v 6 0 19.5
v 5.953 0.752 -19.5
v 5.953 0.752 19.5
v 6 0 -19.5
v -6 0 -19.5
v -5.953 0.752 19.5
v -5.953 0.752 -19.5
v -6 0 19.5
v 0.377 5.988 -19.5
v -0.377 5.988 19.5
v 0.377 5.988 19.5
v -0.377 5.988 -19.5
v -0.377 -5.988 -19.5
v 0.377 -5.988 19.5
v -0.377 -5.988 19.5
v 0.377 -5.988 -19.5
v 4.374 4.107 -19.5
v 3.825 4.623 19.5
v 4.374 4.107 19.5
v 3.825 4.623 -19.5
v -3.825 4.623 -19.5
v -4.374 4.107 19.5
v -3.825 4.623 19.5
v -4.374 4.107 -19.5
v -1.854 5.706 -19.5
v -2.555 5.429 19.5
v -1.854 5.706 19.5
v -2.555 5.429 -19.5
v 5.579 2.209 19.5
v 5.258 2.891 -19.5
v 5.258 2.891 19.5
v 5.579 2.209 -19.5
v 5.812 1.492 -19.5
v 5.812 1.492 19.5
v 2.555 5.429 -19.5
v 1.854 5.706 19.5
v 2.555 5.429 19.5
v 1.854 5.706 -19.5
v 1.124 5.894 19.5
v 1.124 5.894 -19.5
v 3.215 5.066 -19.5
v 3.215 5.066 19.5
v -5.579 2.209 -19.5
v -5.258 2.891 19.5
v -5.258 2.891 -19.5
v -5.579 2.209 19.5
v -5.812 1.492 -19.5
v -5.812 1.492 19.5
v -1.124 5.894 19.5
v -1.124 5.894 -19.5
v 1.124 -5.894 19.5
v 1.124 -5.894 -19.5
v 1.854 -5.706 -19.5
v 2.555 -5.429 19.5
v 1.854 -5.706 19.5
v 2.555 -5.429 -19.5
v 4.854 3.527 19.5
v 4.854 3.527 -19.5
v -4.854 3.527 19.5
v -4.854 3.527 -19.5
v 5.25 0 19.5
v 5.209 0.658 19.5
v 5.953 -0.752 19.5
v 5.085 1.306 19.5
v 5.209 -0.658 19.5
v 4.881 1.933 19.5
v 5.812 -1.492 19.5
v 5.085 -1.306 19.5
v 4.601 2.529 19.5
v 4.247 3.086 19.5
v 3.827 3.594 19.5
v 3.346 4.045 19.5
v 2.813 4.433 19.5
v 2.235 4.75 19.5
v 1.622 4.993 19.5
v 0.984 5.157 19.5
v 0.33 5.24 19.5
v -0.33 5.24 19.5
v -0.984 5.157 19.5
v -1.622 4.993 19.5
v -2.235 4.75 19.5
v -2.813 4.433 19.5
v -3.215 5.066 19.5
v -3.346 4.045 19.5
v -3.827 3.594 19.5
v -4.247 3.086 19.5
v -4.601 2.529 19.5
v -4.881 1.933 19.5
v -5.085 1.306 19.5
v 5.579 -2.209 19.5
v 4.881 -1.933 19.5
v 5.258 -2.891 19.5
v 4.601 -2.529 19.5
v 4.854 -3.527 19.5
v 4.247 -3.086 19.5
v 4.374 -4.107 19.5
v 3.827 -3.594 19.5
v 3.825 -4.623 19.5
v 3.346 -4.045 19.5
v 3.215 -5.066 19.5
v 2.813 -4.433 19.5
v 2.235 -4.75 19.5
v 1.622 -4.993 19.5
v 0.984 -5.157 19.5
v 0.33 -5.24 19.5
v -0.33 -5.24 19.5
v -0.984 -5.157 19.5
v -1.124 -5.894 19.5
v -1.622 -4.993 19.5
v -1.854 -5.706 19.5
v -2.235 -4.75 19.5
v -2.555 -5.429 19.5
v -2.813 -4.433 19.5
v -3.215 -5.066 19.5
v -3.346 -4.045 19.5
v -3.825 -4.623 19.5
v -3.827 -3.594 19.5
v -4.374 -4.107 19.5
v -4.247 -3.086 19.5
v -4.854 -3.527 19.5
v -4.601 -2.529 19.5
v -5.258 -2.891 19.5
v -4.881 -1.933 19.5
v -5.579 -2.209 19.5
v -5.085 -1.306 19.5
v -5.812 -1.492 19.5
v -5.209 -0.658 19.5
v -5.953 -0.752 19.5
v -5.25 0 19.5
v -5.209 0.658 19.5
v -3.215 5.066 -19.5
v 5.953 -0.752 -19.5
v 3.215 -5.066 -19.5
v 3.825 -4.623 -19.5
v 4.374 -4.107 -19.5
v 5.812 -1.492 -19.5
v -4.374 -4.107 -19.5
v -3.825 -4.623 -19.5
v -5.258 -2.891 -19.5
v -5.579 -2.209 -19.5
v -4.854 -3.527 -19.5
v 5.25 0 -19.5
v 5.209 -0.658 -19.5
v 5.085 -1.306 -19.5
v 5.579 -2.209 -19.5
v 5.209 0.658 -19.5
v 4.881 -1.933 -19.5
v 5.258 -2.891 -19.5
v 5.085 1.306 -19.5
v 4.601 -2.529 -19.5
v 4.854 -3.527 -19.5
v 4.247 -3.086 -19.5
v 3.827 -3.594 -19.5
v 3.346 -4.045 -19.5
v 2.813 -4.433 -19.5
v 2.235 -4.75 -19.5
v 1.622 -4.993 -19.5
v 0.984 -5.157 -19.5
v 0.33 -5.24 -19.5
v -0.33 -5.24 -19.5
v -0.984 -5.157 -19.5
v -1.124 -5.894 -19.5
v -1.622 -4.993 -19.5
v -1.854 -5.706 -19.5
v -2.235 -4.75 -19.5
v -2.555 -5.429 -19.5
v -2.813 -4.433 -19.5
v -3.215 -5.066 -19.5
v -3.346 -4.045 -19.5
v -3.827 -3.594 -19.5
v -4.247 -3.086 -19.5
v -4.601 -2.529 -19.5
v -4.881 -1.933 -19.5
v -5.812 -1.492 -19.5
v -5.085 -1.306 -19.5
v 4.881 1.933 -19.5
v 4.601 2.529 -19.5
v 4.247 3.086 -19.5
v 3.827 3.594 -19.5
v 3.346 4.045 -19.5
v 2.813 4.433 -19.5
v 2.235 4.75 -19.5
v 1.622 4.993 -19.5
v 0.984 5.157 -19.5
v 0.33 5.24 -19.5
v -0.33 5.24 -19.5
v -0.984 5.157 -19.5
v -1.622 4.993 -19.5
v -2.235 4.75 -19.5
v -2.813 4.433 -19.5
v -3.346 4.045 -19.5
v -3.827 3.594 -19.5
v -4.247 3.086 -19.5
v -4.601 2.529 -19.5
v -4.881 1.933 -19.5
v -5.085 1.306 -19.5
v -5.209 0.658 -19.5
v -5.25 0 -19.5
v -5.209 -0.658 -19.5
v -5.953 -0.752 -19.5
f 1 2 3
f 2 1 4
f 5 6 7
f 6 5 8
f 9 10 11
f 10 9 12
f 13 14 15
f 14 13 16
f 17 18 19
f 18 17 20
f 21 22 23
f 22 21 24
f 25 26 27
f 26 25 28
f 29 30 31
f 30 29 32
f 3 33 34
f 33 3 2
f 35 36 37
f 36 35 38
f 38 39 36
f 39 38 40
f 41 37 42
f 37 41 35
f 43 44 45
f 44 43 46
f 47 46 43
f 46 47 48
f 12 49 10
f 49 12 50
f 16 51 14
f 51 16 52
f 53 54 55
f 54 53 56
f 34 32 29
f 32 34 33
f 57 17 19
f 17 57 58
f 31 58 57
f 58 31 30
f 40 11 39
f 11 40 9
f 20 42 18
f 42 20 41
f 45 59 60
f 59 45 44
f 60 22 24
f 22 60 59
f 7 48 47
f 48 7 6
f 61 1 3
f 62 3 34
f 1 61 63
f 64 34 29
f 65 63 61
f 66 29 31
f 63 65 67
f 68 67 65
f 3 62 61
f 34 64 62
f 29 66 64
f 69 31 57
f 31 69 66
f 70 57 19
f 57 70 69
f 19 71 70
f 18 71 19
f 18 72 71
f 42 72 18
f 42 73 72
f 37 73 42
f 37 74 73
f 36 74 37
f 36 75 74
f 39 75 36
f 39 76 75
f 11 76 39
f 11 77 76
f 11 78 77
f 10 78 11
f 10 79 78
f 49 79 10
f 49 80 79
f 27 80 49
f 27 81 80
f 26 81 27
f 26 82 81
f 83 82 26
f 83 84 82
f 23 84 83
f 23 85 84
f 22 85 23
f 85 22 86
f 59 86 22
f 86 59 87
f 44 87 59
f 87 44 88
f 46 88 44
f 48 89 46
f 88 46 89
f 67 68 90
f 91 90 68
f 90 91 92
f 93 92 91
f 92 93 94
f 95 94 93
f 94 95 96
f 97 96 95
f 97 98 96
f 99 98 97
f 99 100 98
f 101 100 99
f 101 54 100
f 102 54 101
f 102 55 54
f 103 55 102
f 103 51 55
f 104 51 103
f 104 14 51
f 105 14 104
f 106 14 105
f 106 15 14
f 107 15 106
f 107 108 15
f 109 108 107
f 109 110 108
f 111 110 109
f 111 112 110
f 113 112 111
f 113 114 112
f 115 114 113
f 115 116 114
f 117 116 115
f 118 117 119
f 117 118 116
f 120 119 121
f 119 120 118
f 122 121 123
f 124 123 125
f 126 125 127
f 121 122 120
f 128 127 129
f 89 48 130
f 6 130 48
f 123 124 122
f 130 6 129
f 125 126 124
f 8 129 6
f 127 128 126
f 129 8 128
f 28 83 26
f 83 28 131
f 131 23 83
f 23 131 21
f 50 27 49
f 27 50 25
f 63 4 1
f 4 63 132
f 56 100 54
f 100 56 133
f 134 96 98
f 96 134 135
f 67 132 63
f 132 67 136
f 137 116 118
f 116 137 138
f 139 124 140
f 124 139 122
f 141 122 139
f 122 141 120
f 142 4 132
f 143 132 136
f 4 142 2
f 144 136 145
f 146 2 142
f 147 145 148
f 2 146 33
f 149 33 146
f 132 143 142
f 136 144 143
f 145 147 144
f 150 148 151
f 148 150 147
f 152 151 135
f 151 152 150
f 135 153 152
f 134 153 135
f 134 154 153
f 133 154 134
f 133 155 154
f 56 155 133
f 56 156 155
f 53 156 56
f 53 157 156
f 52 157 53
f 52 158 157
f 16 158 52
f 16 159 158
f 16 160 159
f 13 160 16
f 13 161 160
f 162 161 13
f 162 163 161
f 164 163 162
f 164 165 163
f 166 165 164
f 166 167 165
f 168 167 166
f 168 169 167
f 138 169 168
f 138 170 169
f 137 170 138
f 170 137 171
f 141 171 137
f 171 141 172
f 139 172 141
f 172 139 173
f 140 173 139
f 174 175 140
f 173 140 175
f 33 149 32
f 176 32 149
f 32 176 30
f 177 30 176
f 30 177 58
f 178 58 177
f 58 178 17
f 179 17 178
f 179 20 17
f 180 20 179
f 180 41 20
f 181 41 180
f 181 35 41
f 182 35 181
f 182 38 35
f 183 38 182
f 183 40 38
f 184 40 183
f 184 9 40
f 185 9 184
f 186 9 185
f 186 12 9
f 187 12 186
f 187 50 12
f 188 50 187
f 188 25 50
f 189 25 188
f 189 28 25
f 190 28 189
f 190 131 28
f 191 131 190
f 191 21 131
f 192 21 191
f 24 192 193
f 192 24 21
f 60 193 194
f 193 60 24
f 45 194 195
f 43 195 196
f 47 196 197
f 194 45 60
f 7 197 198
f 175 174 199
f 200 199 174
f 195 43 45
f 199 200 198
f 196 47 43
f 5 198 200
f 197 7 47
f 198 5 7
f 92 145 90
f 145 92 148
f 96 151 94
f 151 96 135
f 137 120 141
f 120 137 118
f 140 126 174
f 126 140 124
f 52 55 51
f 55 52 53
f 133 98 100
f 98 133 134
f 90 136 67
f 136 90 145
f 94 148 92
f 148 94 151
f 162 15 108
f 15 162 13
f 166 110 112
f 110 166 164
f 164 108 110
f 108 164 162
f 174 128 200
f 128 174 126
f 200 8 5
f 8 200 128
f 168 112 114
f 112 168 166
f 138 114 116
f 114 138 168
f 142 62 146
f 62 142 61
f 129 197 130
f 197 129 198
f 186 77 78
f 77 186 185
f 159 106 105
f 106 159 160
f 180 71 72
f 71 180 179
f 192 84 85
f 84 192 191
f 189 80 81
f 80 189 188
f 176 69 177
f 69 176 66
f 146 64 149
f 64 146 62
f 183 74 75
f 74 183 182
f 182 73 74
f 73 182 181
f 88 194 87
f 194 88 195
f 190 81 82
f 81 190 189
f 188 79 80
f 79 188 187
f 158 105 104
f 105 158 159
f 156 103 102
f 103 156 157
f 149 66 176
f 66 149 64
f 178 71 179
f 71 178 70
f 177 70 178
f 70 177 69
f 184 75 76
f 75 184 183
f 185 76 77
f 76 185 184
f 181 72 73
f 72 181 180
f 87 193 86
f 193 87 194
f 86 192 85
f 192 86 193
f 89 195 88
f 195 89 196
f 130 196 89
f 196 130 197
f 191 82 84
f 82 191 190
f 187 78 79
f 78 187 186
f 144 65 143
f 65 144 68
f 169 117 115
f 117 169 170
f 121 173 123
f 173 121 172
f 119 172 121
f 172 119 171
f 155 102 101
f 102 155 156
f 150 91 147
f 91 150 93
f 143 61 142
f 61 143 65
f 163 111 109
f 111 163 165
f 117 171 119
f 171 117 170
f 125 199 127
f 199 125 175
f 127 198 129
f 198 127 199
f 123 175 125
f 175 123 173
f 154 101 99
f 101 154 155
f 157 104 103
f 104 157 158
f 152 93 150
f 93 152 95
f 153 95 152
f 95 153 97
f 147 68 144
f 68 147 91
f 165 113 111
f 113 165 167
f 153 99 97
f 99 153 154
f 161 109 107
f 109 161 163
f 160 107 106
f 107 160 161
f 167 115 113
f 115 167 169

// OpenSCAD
$fn = 50;


difference() {
	union() {
		translate(v = [0, 0, -19.5000000000]) {
			cylinder(h = 39, r = 6.0000000000);
		}
	}
	union() {
		translate(v = [0, 0, -100.0000000000]) {
			cylinder(h = 200, r = 5.2500000000);
		}
	}
}
